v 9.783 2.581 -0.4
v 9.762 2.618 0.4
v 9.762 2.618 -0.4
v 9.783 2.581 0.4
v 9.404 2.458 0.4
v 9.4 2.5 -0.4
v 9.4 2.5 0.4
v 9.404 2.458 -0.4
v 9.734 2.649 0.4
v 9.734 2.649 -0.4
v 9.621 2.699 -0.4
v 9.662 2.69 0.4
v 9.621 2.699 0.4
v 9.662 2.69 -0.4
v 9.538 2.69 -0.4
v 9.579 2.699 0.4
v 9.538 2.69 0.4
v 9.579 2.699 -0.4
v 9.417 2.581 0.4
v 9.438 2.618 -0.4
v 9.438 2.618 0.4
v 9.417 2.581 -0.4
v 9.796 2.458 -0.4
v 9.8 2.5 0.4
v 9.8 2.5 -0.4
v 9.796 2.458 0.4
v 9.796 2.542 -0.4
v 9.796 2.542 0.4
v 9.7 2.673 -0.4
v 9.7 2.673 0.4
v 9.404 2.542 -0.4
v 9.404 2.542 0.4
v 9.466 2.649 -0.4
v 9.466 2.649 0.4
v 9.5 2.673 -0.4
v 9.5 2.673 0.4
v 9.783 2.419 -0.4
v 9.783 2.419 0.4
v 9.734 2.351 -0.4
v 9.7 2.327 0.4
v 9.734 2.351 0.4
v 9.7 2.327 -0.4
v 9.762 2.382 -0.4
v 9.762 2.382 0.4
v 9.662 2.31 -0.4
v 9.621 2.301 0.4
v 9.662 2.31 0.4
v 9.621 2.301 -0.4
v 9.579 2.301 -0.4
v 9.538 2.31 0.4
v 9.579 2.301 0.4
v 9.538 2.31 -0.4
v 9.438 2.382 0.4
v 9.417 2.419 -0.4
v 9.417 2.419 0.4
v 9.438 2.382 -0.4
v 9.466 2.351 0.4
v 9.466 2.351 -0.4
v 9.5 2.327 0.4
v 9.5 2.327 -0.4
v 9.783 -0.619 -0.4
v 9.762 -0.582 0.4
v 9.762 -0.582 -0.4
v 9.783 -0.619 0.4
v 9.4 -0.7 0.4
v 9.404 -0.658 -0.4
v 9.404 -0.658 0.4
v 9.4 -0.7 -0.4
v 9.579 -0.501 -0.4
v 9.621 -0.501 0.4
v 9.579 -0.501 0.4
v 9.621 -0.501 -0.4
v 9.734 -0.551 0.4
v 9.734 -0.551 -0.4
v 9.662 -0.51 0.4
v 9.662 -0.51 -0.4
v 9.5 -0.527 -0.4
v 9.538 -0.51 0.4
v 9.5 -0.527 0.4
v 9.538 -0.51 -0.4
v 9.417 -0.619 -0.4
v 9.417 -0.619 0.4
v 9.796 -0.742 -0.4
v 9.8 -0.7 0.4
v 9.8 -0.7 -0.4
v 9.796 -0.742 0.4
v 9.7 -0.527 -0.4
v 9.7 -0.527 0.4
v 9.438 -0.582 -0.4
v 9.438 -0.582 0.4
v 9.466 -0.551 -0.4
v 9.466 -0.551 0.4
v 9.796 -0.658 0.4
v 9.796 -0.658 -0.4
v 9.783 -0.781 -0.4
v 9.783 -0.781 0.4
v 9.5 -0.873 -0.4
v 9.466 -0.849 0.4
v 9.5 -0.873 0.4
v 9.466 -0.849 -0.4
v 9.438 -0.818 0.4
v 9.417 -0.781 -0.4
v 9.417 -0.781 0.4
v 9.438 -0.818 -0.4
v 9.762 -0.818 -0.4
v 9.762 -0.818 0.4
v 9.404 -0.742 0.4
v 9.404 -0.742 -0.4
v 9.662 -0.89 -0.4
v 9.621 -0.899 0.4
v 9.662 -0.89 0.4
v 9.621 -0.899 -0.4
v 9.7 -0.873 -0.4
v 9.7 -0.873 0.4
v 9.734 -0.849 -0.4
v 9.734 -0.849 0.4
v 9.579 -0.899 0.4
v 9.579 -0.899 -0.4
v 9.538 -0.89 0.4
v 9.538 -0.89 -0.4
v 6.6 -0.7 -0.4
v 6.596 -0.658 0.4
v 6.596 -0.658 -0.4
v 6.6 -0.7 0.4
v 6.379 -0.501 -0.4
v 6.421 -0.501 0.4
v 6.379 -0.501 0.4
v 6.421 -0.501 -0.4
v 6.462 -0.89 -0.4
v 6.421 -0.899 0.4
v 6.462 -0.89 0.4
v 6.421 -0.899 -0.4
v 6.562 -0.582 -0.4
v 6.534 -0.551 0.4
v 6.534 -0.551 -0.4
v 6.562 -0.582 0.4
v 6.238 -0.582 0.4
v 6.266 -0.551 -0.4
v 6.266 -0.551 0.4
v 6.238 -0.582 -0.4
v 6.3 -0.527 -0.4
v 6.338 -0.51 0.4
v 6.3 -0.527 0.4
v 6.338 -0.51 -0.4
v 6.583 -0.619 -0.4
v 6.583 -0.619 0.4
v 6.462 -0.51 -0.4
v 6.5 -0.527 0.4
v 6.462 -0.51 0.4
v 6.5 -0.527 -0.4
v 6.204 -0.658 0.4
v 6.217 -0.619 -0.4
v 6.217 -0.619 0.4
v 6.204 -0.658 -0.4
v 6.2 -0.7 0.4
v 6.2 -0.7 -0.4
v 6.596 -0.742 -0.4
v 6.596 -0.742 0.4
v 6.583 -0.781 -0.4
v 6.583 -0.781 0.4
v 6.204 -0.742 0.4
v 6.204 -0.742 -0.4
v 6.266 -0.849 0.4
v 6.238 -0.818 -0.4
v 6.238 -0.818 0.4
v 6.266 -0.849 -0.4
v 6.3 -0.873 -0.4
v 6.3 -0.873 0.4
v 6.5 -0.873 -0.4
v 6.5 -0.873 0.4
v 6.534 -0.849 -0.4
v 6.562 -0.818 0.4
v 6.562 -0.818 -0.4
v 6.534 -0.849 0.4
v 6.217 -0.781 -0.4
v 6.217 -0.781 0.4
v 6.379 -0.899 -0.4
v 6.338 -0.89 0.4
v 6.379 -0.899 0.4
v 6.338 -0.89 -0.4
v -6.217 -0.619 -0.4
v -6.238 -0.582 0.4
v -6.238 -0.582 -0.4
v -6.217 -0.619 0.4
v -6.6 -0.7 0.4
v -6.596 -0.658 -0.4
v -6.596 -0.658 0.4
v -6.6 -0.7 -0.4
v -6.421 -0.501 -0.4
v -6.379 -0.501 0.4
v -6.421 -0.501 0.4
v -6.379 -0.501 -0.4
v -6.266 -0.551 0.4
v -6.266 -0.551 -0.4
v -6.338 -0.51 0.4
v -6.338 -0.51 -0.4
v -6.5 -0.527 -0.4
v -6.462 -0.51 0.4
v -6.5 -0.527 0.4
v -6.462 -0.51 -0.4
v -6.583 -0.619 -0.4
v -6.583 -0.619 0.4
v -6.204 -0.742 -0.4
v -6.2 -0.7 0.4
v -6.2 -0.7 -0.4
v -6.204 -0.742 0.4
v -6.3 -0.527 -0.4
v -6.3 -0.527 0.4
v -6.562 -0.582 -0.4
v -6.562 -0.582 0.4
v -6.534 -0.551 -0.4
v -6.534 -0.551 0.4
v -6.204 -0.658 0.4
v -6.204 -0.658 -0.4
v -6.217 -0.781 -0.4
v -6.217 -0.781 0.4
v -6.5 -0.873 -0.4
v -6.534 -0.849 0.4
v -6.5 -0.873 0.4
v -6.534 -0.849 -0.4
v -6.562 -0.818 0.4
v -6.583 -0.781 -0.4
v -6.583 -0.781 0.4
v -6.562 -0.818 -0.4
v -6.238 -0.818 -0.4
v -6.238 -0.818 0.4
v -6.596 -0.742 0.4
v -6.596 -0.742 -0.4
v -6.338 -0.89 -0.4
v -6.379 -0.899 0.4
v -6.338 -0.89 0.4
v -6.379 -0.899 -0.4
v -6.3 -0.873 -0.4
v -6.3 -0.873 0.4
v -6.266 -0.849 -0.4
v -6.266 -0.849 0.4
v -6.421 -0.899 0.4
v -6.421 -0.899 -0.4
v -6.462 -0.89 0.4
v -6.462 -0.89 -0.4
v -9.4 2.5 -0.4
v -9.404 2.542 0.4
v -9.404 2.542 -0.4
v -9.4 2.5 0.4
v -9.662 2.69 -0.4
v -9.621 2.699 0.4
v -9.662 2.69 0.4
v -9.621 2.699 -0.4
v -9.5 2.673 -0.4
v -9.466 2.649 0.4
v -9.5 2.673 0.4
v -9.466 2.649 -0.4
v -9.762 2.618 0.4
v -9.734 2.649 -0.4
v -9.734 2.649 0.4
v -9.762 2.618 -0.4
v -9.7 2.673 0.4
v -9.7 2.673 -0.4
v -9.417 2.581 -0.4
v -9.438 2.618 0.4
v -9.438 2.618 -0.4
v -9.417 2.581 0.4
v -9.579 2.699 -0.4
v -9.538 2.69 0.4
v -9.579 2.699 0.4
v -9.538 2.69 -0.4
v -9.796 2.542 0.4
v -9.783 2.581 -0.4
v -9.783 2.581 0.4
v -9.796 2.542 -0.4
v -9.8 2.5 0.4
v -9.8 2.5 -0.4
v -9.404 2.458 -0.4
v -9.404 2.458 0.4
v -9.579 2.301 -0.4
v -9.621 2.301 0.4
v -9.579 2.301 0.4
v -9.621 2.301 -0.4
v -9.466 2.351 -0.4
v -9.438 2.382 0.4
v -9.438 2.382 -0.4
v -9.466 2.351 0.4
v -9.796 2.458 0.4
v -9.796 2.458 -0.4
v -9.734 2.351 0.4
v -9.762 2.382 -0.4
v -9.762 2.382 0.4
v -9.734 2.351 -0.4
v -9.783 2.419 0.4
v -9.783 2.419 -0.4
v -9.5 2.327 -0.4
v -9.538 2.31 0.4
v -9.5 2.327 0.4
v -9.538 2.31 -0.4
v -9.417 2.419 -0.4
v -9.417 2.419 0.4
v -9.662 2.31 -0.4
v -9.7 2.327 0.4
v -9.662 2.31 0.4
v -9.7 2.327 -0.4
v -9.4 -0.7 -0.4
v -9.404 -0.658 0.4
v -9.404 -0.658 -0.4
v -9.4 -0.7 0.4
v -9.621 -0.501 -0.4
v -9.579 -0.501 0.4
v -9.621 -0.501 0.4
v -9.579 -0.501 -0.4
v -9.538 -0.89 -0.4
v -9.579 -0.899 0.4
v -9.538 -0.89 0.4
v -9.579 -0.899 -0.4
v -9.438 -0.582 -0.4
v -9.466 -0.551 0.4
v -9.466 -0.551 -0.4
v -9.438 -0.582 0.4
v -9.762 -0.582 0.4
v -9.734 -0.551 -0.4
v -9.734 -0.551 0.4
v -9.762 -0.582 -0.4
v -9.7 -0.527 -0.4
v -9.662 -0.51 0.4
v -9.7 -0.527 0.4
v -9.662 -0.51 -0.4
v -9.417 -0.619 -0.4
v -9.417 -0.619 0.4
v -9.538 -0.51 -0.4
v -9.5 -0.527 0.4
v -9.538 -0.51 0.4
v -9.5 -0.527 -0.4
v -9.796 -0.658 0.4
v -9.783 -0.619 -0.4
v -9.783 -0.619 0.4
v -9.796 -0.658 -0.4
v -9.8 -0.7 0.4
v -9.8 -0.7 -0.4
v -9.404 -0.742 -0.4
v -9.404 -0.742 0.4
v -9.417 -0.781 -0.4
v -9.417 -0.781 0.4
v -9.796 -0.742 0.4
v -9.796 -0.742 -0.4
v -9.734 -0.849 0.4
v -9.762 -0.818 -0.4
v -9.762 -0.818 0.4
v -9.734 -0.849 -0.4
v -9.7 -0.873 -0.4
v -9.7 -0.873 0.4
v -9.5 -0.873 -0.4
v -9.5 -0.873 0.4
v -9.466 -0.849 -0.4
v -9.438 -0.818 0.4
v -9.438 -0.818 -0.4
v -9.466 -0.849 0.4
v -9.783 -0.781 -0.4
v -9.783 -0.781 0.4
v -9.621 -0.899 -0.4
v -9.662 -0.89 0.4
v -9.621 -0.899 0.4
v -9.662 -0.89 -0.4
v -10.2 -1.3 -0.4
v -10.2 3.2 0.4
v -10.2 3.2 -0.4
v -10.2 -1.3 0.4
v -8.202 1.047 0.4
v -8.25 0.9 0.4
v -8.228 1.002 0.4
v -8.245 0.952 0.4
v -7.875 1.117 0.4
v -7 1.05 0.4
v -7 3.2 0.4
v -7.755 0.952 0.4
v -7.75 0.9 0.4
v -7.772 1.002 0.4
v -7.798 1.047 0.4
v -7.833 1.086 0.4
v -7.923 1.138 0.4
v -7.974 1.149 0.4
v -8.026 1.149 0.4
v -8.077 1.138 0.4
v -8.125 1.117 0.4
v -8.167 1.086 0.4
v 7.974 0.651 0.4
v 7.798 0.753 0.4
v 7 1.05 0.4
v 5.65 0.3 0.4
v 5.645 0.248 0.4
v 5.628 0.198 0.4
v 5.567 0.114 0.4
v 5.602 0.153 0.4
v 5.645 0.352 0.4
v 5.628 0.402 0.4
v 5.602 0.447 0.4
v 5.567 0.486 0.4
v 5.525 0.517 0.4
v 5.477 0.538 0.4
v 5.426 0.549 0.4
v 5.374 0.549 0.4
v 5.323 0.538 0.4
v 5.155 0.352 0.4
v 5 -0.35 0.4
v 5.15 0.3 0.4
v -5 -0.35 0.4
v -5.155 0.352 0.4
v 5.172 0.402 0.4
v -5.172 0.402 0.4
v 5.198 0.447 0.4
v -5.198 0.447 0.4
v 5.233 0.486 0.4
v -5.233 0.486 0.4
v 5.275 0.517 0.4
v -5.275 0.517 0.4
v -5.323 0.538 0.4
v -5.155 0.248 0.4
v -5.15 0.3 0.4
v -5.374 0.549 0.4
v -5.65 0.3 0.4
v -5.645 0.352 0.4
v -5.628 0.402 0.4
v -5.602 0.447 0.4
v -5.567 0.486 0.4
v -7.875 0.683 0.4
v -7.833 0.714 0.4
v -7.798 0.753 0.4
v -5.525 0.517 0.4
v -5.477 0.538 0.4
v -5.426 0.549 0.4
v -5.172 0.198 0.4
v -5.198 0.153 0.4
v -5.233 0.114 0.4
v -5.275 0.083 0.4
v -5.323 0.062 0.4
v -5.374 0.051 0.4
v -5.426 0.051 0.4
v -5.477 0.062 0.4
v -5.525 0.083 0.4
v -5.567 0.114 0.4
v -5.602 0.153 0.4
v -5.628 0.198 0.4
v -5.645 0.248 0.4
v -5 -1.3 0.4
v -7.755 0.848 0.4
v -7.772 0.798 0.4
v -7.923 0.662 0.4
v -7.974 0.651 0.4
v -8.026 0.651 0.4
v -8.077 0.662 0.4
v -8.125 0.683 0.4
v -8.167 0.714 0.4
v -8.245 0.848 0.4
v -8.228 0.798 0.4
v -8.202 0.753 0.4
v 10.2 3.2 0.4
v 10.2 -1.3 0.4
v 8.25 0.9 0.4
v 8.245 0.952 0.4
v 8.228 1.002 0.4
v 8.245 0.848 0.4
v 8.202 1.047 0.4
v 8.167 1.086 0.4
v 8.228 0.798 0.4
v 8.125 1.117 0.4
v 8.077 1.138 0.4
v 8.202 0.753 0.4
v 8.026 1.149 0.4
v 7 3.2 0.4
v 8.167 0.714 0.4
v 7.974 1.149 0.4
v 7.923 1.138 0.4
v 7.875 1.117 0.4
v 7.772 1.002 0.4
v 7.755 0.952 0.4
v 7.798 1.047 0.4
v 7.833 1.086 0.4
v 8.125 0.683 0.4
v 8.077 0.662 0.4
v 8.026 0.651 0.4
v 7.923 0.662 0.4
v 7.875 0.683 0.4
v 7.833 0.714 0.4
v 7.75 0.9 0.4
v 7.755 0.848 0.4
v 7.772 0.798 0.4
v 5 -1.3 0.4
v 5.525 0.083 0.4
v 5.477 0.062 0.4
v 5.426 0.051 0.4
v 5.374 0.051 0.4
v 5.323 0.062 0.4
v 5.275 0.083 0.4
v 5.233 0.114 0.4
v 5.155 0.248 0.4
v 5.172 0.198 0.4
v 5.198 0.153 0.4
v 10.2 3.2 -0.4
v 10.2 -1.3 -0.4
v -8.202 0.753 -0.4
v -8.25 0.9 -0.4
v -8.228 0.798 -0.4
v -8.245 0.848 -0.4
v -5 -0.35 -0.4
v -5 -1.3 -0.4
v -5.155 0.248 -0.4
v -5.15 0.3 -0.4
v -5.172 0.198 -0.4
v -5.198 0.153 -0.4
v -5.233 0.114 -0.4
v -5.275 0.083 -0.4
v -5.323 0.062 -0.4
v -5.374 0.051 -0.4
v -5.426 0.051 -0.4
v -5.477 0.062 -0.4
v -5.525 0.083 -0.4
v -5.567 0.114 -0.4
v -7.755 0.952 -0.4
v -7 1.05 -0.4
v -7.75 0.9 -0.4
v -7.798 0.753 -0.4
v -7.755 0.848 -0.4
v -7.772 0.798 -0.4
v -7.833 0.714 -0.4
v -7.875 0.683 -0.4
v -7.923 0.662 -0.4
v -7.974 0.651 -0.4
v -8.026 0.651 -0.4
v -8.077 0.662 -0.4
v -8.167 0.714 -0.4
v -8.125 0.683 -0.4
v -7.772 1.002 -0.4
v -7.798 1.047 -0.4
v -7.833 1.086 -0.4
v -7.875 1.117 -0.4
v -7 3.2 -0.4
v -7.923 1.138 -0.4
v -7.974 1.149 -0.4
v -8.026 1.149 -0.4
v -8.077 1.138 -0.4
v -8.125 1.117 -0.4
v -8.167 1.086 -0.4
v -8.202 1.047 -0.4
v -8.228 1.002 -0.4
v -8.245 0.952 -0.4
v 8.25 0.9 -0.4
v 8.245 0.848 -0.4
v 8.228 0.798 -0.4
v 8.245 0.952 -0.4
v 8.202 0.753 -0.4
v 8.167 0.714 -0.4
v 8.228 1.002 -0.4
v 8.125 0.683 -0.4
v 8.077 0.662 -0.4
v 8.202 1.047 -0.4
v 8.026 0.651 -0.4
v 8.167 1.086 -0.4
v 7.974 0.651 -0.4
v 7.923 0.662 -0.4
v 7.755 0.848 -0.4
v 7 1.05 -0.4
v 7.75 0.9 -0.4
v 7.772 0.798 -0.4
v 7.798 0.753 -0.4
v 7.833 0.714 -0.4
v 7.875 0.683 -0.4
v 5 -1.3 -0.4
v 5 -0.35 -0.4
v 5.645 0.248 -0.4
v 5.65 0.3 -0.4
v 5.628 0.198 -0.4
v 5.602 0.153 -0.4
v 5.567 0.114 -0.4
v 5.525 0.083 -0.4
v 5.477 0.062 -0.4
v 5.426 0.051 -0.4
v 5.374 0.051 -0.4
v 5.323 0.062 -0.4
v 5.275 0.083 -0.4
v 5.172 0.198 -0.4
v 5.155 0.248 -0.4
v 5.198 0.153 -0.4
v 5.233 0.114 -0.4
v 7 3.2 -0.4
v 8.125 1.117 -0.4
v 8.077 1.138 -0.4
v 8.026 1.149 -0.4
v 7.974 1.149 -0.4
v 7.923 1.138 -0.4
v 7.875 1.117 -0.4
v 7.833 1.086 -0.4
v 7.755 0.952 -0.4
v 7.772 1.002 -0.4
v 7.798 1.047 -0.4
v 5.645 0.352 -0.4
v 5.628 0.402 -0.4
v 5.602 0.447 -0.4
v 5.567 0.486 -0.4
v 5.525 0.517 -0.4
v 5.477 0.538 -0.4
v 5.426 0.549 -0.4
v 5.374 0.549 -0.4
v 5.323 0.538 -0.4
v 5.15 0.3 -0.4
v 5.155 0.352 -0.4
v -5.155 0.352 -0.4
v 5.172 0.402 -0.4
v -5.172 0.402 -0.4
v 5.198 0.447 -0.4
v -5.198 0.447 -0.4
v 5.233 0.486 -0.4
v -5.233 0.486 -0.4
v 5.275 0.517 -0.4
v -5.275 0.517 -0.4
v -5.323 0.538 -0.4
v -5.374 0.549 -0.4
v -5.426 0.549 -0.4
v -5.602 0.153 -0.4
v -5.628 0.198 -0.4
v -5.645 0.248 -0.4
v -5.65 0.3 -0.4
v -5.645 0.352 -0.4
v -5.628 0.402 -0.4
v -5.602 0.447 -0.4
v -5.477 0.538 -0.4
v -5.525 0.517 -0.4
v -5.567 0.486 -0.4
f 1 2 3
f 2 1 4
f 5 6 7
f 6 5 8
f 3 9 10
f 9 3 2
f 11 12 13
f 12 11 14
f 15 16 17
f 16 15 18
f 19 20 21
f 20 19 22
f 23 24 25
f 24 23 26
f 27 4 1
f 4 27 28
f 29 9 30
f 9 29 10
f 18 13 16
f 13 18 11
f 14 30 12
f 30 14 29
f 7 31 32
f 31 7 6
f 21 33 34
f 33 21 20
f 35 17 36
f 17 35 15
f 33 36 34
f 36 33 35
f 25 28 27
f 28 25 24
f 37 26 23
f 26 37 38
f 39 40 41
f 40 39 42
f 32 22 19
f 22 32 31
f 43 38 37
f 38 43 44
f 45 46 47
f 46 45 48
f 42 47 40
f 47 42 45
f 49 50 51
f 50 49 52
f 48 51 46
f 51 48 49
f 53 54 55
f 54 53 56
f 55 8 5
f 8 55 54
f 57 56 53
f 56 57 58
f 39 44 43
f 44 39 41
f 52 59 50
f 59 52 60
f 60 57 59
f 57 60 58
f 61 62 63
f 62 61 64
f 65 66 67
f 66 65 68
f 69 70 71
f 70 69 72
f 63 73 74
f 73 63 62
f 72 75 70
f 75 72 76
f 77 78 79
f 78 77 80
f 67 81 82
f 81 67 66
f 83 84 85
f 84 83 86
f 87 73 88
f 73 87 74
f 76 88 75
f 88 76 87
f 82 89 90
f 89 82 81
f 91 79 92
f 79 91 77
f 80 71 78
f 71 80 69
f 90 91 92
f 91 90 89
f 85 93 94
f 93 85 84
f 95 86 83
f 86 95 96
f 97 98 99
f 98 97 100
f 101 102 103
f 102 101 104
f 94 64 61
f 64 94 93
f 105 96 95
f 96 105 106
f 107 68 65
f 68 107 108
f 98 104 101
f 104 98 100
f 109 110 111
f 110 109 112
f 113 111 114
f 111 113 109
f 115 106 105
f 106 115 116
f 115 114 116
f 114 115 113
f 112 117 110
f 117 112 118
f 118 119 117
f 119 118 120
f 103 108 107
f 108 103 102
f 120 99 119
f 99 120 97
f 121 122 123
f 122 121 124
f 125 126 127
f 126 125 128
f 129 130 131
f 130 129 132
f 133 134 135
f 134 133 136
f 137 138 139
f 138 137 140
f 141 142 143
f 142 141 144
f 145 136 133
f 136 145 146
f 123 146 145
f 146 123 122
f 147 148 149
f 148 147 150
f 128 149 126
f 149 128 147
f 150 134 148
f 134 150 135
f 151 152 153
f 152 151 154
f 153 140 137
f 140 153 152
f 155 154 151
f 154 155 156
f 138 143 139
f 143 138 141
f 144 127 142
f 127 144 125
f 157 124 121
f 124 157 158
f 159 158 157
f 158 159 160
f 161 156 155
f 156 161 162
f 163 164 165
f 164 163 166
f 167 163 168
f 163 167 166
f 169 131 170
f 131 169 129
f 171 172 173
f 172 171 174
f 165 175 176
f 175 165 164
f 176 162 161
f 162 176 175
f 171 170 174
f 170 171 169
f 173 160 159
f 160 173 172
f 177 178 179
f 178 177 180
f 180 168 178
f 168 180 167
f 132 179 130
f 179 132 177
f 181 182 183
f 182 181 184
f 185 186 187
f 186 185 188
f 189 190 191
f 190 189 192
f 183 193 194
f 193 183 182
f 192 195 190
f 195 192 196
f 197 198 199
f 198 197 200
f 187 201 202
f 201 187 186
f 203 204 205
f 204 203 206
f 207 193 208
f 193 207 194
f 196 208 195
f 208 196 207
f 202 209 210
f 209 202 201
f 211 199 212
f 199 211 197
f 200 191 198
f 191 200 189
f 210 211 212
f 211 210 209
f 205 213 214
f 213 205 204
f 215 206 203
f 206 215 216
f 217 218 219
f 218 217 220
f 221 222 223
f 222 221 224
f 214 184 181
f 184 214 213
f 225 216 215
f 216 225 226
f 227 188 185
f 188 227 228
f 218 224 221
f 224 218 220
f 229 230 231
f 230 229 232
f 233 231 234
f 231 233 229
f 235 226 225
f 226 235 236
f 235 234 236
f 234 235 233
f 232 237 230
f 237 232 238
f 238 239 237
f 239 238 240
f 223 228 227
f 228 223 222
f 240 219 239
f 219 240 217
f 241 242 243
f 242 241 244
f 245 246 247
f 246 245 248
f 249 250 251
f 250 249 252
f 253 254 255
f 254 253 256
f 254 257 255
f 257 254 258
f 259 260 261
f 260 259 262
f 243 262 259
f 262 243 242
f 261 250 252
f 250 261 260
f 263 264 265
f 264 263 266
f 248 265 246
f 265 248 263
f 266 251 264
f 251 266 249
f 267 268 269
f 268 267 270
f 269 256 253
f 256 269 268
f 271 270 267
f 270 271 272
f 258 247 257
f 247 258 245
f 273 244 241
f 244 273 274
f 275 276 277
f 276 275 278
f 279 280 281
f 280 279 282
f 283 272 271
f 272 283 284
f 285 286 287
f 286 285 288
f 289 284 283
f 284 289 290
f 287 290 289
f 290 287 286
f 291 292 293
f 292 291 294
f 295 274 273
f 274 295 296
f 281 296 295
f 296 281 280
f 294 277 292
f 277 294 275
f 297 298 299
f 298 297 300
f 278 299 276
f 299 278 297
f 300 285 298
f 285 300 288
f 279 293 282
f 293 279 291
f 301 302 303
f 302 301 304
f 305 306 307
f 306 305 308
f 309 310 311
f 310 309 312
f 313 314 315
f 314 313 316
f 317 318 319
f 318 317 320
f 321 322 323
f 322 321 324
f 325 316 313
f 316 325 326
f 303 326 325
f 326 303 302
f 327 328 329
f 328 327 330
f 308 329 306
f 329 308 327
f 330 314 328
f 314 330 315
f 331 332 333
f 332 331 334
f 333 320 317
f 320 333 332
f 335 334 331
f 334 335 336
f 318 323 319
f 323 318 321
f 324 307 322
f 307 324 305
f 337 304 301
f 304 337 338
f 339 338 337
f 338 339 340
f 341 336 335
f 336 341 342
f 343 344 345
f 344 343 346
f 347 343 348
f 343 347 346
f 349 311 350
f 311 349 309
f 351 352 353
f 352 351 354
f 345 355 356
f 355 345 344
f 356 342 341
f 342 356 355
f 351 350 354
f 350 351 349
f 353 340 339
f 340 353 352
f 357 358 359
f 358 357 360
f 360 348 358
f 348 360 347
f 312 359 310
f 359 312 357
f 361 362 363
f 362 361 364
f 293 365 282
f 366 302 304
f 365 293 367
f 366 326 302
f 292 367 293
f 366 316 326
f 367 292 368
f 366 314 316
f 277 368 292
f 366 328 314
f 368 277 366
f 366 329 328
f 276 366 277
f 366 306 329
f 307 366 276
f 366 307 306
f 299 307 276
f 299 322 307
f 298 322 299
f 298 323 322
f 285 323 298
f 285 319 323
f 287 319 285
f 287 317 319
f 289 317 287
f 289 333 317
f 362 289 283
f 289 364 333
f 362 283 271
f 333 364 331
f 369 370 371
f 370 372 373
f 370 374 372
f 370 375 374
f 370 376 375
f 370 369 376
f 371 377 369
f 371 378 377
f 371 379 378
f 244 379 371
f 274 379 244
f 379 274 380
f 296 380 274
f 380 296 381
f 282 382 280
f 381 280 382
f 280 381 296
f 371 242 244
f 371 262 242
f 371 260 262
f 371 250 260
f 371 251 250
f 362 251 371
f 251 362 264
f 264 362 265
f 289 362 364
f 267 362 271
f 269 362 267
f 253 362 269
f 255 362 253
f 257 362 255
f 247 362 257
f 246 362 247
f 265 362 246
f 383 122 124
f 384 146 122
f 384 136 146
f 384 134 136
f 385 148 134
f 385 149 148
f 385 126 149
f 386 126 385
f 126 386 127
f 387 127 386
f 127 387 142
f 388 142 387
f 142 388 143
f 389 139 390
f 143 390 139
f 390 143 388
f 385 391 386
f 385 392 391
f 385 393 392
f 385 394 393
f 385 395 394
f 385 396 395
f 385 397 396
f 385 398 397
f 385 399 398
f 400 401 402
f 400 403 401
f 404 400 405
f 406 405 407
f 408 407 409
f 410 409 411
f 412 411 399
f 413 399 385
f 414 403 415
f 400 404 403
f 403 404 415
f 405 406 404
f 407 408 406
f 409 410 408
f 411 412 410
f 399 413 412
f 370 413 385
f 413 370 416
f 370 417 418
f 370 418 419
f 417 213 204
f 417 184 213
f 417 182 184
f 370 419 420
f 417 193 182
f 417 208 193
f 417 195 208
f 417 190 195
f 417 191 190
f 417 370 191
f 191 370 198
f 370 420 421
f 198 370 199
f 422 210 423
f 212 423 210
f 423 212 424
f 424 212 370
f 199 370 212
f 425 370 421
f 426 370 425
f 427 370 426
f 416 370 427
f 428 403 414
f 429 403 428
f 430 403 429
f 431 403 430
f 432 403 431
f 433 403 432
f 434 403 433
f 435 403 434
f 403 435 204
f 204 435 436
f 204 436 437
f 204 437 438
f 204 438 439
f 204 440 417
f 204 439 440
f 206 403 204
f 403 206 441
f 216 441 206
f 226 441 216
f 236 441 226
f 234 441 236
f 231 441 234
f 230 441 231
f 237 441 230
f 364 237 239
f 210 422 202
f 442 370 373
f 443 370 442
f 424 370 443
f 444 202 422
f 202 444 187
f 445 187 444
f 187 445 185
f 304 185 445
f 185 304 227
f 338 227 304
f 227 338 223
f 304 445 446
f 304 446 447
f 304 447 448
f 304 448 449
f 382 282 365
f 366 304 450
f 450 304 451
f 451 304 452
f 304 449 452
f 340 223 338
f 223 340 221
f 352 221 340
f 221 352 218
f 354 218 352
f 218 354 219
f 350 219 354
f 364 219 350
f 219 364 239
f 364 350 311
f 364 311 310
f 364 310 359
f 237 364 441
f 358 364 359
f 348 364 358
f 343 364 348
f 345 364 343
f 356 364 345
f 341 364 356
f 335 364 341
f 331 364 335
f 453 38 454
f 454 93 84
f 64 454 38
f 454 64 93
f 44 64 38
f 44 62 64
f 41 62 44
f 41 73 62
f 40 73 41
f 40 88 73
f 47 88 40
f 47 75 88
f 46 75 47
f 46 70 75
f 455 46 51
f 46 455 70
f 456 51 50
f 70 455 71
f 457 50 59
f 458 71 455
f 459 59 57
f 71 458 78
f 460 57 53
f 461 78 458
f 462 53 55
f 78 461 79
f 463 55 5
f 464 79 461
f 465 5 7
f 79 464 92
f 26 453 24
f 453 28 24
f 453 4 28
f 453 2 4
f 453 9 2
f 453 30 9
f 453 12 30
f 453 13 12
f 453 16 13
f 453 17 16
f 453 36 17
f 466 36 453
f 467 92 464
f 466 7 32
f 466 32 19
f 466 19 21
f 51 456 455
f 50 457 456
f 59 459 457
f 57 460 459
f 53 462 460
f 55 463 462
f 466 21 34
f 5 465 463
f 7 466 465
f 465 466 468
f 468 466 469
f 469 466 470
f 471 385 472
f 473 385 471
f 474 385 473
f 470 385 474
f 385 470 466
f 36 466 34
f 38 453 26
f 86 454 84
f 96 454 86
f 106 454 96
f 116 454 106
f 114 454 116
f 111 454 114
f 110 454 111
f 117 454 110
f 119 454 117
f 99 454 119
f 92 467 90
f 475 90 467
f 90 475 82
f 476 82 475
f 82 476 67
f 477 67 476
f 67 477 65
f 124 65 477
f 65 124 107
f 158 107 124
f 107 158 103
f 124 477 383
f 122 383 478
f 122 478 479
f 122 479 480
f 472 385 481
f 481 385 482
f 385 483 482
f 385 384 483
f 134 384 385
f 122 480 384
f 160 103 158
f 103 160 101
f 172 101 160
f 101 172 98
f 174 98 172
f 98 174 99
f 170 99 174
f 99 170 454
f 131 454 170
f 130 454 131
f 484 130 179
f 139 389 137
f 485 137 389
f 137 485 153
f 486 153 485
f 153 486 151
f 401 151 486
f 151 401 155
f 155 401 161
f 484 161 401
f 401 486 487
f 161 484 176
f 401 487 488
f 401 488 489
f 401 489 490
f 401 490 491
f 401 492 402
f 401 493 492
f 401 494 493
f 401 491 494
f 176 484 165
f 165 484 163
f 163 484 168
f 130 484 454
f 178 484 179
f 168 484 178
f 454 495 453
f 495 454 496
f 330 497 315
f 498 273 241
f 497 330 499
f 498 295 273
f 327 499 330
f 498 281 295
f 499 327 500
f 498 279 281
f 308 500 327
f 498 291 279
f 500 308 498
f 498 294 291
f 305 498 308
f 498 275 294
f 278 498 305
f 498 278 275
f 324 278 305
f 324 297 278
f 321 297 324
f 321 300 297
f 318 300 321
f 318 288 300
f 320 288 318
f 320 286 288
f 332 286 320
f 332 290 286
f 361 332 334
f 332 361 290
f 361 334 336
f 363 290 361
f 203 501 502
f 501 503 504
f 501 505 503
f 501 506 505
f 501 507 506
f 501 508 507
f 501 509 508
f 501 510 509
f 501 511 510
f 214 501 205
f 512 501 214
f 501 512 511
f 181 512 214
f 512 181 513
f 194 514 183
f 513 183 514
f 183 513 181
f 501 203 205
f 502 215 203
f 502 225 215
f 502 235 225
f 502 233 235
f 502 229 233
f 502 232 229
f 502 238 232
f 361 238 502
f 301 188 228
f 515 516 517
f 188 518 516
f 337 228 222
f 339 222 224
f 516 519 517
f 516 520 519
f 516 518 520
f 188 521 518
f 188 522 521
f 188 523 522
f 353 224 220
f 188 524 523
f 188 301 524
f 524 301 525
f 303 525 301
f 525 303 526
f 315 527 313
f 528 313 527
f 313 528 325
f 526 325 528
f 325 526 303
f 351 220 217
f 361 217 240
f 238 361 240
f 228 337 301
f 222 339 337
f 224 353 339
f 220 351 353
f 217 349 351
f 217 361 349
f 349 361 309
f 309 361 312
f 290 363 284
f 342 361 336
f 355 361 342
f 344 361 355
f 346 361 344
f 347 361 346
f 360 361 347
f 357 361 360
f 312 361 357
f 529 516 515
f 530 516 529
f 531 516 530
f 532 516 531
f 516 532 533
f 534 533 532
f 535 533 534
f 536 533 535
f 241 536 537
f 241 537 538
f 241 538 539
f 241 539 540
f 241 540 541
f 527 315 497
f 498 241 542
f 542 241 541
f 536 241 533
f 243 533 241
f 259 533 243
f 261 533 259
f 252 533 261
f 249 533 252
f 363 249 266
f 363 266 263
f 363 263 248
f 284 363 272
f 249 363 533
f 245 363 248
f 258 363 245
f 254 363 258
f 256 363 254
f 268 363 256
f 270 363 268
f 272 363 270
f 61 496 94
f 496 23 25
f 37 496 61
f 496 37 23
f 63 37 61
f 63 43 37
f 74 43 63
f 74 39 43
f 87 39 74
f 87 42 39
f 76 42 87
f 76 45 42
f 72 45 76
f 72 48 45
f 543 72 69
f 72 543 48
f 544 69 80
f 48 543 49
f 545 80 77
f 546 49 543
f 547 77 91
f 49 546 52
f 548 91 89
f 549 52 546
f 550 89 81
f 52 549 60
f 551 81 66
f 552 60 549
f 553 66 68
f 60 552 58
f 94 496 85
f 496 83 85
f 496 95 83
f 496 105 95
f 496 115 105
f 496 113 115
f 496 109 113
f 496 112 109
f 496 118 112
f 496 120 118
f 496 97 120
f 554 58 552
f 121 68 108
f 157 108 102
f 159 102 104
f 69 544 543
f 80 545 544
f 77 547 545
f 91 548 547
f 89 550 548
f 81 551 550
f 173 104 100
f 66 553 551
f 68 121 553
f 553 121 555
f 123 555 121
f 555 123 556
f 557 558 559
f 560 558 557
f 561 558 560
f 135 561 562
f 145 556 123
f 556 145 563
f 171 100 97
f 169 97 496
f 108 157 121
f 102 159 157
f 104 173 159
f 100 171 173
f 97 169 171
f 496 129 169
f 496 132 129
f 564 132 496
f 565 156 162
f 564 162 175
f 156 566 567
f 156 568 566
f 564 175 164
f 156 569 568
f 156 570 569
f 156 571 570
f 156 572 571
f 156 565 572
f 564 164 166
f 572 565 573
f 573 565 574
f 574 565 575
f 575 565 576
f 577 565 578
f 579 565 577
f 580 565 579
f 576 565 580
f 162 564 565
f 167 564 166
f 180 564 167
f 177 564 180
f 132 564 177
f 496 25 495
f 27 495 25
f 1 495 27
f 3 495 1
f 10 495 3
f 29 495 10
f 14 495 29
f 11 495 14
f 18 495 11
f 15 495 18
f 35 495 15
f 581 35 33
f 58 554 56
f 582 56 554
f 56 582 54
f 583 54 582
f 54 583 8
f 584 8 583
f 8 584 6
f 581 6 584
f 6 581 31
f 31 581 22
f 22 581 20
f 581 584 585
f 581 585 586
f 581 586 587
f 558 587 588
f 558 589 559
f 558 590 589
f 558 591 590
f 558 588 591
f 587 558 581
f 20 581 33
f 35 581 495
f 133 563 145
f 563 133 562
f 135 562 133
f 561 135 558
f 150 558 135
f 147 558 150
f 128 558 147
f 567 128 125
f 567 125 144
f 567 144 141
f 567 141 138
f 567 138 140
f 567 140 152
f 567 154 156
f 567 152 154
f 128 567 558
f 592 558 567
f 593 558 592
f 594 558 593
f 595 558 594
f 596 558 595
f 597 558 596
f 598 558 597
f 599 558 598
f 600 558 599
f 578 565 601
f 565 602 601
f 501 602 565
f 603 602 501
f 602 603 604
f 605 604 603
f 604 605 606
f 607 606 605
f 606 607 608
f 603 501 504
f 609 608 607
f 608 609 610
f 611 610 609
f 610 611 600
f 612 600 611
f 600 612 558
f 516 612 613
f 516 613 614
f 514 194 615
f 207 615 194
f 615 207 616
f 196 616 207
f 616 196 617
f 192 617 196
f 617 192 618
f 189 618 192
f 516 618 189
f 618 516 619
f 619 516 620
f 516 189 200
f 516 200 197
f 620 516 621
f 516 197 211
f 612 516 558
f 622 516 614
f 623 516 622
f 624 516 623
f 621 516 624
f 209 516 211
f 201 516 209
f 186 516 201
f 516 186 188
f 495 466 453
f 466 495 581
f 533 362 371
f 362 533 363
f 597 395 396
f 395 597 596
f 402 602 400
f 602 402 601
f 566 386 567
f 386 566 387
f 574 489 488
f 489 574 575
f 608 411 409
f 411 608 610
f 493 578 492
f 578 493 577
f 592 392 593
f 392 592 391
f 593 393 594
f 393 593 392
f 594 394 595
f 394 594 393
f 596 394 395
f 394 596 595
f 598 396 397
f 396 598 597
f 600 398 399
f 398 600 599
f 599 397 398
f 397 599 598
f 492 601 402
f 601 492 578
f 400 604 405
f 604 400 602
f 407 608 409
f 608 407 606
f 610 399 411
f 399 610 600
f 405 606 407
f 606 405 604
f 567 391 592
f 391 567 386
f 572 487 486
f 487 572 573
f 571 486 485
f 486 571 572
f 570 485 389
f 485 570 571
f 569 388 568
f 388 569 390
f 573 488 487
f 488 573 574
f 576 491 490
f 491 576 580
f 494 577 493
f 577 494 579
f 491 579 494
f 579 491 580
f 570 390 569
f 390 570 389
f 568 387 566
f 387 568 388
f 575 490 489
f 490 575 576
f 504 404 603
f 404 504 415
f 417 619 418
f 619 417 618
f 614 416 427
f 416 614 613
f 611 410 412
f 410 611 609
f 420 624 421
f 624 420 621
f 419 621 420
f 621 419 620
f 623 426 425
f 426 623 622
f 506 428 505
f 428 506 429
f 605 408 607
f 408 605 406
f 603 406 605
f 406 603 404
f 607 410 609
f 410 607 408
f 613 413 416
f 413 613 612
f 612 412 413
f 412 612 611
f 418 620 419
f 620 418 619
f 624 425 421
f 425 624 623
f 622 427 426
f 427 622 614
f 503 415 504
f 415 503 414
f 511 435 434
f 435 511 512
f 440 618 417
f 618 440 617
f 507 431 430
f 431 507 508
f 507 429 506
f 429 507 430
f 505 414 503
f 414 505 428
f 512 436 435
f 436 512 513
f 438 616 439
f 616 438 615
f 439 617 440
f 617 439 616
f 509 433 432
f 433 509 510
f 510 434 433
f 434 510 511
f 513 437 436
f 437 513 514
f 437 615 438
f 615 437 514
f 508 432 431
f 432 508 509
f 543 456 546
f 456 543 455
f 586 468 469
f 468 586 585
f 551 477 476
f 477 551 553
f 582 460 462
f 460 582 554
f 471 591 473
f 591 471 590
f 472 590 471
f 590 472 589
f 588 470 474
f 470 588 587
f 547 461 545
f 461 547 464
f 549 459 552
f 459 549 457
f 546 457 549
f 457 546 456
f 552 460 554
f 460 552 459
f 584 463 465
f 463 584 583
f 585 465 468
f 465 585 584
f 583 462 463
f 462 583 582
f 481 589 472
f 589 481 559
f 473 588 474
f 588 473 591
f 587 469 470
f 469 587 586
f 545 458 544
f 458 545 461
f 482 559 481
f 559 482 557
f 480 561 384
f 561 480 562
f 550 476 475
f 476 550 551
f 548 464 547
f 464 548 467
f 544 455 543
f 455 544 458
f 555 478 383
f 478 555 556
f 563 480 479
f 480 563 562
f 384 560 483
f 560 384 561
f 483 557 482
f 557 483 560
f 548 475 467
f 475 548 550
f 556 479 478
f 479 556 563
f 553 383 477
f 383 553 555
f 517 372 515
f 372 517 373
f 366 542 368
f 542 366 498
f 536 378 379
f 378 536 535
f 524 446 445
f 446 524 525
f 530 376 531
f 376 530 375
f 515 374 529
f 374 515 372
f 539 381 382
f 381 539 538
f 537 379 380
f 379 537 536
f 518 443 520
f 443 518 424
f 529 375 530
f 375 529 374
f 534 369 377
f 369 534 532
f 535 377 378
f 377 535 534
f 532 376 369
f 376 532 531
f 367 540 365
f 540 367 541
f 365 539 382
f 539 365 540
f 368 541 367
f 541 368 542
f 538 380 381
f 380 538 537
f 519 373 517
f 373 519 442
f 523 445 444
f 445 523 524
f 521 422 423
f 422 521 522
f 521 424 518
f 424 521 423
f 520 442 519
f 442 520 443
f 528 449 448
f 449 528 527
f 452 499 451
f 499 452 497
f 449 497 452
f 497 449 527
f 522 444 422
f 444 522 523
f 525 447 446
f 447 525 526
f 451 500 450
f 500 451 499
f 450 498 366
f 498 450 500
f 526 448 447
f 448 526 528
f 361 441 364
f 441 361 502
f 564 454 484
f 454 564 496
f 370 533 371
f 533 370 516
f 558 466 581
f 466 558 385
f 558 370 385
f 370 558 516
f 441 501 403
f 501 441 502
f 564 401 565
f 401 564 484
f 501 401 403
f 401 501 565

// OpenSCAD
$fn = 30;
module holes() {
	translate([4.2/2-0.5,0.9+4.2/2-0.5,0]) cylinder(d=0.4, h=6, center=true);
	translate([4.2/2-0.5,0.9-4.2/2+0.5,0]) cylinder(d=0.4, h=6, center=true);
	translate([-4.2/2+0.5,0.9+4.2/2-0.5,0]) cylinder(d=0.4, h=6, center=true);
	translate([-4.2/2+0.5,0.9-4.2/2+0.5,0]) cylinder(d=0.4, h=6, center=true);
}
module shoulder_blade() {

	difference() {
		cube([20.4, 6.4, 0.8], center=true);
		translate([10.8/2,0.9-0.6,0]) cylinder(d=0.5, h=5, center=true);
		translate([-10.8/2,0.9-0.6,0]) cylinder(d=0.5, h=5, center=true);
		translate([16/2,0.9,0]) cylinder(d=0.5, h=6.5, center=true);
		translate([-16/2,0.9,0]) cylinder(d=0.5, h=6.5, center=true);
		translate([16/2,0,0]) holes();
		translate([-16/2,0,0]) holes();
		translate([0,-2.3,0]) cube([21.4, 2.0, 1.2], center=true);
		translate([0,2.3,0]) cube([14, 2.5, 1.2], center=true);
		translate([0,-1.6,0]) cube([10, 2.5, 1.2], center=true);
	}
}
shoulder_blade();
